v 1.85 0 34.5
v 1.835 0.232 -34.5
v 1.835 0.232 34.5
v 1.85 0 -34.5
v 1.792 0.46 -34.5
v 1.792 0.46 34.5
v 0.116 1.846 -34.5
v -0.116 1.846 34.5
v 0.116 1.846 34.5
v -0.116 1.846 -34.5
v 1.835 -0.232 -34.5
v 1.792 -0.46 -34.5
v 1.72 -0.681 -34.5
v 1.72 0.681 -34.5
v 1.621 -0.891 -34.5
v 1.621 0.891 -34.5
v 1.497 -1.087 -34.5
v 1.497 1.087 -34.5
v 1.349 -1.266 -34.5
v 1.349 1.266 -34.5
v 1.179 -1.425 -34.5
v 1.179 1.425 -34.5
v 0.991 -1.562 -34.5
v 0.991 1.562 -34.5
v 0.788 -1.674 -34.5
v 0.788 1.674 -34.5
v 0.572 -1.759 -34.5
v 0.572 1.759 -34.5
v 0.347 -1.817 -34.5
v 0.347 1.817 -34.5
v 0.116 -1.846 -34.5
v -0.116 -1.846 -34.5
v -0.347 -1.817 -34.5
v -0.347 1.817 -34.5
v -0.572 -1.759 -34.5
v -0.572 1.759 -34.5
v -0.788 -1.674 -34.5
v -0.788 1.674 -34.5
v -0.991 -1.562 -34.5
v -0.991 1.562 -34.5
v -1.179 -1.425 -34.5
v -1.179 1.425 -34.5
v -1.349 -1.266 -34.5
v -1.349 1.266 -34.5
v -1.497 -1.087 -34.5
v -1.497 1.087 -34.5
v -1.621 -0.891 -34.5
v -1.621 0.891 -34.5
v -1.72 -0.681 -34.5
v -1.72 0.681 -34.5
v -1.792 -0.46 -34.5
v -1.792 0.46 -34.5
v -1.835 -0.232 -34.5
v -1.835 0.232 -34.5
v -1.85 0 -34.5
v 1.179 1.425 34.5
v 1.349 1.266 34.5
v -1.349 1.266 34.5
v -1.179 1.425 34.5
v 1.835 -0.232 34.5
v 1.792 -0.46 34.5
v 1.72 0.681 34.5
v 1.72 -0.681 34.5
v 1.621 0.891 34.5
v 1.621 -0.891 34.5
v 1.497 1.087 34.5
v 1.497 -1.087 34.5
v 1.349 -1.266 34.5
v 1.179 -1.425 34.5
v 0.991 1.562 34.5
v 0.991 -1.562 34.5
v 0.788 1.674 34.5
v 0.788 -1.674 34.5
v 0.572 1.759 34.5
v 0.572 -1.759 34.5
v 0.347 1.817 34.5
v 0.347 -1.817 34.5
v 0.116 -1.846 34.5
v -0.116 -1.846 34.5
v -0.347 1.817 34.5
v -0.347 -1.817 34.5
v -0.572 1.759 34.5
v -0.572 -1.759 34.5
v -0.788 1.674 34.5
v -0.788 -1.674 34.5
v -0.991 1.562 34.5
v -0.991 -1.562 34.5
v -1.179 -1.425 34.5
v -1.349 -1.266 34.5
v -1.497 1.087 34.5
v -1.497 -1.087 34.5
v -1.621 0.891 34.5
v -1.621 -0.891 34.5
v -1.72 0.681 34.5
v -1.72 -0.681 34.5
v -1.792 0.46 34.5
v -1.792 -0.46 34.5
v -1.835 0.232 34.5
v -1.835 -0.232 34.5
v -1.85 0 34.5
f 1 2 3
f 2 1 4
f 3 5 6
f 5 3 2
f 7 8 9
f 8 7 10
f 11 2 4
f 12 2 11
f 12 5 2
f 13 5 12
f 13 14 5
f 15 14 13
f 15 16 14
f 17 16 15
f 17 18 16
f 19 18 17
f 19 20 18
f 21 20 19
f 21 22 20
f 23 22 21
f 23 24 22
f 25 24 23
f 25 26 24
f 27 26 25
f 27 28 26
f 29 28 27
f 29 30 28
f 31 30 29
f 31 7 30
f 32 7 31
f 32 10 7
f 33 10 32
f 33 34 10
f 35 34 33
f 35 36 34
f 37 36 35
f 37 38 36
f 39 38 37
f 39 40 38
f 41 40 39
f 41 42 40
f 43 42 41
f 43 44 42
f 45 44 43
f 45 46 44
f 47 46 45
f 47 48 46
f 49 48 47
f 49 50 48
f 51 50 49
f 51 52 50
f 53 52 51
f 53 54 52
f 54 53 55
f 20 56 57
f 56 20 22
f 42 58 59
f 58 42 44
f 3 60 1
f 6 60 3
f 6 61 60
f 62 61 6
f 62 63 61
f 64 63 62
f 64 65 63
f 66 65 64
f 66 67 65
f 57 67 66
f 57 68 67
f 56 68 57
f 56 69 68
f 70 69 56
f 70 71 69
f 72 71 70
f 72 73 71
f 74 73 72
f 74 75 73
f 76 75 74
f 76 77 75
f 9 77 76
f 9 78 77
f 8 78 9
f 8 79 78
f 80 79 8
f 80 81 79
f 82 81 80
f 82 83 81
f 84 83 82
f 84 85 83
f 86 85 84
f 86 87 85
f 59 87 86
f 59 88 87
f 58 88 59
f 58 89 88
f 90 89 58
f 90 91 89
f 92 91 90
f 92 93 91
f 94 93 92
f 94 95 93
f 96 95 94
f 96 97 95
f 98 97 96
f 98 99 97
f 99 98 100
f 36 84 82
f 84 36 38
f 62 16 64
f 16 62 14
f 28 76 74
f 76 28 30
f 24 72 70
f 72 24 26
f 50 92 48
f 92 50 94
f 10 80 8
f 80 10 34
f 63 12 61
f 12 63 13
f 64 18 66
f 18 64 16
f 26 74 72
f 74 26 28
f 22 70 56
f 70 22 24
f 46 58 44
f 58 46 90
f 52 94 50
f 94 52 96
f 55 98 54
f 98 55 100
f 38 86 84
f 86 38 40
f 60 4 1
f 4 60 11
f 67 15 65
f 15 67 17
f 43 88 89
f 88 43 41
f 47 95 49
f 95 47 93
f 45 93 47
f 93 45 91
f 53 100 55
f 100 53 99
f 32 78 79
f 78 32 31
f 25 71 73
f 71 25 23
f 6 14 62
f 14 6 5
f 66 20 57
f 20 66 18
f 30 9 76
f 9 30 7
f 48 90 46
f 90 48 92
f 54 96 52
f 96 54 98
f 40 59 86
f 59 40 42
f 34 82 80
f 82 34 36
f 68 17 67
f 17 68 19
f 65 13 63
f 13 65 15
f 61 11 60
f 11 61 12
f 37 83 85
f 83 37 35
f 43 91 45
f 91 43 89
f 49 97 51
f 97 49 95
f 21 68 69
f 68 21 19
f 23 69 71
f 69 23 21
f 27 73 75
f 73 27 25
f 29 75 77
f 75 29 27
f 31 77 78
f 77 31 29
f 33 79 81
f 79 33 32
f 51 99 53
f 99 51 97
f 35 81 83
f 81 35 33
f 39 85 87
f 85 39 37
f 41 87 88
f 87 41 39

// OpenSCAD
$fn = 50;


difference() {
	union() {
		translate(v = [0, 0, -34.5000000000]) {
			cylinder(h = 69, r = 1.8500000000);
		}
	}
	union() {
		translate(v = [0, 0, -100.0000000000]) {
			cylinder(h = 200, r = 0);
		}
	}
}
